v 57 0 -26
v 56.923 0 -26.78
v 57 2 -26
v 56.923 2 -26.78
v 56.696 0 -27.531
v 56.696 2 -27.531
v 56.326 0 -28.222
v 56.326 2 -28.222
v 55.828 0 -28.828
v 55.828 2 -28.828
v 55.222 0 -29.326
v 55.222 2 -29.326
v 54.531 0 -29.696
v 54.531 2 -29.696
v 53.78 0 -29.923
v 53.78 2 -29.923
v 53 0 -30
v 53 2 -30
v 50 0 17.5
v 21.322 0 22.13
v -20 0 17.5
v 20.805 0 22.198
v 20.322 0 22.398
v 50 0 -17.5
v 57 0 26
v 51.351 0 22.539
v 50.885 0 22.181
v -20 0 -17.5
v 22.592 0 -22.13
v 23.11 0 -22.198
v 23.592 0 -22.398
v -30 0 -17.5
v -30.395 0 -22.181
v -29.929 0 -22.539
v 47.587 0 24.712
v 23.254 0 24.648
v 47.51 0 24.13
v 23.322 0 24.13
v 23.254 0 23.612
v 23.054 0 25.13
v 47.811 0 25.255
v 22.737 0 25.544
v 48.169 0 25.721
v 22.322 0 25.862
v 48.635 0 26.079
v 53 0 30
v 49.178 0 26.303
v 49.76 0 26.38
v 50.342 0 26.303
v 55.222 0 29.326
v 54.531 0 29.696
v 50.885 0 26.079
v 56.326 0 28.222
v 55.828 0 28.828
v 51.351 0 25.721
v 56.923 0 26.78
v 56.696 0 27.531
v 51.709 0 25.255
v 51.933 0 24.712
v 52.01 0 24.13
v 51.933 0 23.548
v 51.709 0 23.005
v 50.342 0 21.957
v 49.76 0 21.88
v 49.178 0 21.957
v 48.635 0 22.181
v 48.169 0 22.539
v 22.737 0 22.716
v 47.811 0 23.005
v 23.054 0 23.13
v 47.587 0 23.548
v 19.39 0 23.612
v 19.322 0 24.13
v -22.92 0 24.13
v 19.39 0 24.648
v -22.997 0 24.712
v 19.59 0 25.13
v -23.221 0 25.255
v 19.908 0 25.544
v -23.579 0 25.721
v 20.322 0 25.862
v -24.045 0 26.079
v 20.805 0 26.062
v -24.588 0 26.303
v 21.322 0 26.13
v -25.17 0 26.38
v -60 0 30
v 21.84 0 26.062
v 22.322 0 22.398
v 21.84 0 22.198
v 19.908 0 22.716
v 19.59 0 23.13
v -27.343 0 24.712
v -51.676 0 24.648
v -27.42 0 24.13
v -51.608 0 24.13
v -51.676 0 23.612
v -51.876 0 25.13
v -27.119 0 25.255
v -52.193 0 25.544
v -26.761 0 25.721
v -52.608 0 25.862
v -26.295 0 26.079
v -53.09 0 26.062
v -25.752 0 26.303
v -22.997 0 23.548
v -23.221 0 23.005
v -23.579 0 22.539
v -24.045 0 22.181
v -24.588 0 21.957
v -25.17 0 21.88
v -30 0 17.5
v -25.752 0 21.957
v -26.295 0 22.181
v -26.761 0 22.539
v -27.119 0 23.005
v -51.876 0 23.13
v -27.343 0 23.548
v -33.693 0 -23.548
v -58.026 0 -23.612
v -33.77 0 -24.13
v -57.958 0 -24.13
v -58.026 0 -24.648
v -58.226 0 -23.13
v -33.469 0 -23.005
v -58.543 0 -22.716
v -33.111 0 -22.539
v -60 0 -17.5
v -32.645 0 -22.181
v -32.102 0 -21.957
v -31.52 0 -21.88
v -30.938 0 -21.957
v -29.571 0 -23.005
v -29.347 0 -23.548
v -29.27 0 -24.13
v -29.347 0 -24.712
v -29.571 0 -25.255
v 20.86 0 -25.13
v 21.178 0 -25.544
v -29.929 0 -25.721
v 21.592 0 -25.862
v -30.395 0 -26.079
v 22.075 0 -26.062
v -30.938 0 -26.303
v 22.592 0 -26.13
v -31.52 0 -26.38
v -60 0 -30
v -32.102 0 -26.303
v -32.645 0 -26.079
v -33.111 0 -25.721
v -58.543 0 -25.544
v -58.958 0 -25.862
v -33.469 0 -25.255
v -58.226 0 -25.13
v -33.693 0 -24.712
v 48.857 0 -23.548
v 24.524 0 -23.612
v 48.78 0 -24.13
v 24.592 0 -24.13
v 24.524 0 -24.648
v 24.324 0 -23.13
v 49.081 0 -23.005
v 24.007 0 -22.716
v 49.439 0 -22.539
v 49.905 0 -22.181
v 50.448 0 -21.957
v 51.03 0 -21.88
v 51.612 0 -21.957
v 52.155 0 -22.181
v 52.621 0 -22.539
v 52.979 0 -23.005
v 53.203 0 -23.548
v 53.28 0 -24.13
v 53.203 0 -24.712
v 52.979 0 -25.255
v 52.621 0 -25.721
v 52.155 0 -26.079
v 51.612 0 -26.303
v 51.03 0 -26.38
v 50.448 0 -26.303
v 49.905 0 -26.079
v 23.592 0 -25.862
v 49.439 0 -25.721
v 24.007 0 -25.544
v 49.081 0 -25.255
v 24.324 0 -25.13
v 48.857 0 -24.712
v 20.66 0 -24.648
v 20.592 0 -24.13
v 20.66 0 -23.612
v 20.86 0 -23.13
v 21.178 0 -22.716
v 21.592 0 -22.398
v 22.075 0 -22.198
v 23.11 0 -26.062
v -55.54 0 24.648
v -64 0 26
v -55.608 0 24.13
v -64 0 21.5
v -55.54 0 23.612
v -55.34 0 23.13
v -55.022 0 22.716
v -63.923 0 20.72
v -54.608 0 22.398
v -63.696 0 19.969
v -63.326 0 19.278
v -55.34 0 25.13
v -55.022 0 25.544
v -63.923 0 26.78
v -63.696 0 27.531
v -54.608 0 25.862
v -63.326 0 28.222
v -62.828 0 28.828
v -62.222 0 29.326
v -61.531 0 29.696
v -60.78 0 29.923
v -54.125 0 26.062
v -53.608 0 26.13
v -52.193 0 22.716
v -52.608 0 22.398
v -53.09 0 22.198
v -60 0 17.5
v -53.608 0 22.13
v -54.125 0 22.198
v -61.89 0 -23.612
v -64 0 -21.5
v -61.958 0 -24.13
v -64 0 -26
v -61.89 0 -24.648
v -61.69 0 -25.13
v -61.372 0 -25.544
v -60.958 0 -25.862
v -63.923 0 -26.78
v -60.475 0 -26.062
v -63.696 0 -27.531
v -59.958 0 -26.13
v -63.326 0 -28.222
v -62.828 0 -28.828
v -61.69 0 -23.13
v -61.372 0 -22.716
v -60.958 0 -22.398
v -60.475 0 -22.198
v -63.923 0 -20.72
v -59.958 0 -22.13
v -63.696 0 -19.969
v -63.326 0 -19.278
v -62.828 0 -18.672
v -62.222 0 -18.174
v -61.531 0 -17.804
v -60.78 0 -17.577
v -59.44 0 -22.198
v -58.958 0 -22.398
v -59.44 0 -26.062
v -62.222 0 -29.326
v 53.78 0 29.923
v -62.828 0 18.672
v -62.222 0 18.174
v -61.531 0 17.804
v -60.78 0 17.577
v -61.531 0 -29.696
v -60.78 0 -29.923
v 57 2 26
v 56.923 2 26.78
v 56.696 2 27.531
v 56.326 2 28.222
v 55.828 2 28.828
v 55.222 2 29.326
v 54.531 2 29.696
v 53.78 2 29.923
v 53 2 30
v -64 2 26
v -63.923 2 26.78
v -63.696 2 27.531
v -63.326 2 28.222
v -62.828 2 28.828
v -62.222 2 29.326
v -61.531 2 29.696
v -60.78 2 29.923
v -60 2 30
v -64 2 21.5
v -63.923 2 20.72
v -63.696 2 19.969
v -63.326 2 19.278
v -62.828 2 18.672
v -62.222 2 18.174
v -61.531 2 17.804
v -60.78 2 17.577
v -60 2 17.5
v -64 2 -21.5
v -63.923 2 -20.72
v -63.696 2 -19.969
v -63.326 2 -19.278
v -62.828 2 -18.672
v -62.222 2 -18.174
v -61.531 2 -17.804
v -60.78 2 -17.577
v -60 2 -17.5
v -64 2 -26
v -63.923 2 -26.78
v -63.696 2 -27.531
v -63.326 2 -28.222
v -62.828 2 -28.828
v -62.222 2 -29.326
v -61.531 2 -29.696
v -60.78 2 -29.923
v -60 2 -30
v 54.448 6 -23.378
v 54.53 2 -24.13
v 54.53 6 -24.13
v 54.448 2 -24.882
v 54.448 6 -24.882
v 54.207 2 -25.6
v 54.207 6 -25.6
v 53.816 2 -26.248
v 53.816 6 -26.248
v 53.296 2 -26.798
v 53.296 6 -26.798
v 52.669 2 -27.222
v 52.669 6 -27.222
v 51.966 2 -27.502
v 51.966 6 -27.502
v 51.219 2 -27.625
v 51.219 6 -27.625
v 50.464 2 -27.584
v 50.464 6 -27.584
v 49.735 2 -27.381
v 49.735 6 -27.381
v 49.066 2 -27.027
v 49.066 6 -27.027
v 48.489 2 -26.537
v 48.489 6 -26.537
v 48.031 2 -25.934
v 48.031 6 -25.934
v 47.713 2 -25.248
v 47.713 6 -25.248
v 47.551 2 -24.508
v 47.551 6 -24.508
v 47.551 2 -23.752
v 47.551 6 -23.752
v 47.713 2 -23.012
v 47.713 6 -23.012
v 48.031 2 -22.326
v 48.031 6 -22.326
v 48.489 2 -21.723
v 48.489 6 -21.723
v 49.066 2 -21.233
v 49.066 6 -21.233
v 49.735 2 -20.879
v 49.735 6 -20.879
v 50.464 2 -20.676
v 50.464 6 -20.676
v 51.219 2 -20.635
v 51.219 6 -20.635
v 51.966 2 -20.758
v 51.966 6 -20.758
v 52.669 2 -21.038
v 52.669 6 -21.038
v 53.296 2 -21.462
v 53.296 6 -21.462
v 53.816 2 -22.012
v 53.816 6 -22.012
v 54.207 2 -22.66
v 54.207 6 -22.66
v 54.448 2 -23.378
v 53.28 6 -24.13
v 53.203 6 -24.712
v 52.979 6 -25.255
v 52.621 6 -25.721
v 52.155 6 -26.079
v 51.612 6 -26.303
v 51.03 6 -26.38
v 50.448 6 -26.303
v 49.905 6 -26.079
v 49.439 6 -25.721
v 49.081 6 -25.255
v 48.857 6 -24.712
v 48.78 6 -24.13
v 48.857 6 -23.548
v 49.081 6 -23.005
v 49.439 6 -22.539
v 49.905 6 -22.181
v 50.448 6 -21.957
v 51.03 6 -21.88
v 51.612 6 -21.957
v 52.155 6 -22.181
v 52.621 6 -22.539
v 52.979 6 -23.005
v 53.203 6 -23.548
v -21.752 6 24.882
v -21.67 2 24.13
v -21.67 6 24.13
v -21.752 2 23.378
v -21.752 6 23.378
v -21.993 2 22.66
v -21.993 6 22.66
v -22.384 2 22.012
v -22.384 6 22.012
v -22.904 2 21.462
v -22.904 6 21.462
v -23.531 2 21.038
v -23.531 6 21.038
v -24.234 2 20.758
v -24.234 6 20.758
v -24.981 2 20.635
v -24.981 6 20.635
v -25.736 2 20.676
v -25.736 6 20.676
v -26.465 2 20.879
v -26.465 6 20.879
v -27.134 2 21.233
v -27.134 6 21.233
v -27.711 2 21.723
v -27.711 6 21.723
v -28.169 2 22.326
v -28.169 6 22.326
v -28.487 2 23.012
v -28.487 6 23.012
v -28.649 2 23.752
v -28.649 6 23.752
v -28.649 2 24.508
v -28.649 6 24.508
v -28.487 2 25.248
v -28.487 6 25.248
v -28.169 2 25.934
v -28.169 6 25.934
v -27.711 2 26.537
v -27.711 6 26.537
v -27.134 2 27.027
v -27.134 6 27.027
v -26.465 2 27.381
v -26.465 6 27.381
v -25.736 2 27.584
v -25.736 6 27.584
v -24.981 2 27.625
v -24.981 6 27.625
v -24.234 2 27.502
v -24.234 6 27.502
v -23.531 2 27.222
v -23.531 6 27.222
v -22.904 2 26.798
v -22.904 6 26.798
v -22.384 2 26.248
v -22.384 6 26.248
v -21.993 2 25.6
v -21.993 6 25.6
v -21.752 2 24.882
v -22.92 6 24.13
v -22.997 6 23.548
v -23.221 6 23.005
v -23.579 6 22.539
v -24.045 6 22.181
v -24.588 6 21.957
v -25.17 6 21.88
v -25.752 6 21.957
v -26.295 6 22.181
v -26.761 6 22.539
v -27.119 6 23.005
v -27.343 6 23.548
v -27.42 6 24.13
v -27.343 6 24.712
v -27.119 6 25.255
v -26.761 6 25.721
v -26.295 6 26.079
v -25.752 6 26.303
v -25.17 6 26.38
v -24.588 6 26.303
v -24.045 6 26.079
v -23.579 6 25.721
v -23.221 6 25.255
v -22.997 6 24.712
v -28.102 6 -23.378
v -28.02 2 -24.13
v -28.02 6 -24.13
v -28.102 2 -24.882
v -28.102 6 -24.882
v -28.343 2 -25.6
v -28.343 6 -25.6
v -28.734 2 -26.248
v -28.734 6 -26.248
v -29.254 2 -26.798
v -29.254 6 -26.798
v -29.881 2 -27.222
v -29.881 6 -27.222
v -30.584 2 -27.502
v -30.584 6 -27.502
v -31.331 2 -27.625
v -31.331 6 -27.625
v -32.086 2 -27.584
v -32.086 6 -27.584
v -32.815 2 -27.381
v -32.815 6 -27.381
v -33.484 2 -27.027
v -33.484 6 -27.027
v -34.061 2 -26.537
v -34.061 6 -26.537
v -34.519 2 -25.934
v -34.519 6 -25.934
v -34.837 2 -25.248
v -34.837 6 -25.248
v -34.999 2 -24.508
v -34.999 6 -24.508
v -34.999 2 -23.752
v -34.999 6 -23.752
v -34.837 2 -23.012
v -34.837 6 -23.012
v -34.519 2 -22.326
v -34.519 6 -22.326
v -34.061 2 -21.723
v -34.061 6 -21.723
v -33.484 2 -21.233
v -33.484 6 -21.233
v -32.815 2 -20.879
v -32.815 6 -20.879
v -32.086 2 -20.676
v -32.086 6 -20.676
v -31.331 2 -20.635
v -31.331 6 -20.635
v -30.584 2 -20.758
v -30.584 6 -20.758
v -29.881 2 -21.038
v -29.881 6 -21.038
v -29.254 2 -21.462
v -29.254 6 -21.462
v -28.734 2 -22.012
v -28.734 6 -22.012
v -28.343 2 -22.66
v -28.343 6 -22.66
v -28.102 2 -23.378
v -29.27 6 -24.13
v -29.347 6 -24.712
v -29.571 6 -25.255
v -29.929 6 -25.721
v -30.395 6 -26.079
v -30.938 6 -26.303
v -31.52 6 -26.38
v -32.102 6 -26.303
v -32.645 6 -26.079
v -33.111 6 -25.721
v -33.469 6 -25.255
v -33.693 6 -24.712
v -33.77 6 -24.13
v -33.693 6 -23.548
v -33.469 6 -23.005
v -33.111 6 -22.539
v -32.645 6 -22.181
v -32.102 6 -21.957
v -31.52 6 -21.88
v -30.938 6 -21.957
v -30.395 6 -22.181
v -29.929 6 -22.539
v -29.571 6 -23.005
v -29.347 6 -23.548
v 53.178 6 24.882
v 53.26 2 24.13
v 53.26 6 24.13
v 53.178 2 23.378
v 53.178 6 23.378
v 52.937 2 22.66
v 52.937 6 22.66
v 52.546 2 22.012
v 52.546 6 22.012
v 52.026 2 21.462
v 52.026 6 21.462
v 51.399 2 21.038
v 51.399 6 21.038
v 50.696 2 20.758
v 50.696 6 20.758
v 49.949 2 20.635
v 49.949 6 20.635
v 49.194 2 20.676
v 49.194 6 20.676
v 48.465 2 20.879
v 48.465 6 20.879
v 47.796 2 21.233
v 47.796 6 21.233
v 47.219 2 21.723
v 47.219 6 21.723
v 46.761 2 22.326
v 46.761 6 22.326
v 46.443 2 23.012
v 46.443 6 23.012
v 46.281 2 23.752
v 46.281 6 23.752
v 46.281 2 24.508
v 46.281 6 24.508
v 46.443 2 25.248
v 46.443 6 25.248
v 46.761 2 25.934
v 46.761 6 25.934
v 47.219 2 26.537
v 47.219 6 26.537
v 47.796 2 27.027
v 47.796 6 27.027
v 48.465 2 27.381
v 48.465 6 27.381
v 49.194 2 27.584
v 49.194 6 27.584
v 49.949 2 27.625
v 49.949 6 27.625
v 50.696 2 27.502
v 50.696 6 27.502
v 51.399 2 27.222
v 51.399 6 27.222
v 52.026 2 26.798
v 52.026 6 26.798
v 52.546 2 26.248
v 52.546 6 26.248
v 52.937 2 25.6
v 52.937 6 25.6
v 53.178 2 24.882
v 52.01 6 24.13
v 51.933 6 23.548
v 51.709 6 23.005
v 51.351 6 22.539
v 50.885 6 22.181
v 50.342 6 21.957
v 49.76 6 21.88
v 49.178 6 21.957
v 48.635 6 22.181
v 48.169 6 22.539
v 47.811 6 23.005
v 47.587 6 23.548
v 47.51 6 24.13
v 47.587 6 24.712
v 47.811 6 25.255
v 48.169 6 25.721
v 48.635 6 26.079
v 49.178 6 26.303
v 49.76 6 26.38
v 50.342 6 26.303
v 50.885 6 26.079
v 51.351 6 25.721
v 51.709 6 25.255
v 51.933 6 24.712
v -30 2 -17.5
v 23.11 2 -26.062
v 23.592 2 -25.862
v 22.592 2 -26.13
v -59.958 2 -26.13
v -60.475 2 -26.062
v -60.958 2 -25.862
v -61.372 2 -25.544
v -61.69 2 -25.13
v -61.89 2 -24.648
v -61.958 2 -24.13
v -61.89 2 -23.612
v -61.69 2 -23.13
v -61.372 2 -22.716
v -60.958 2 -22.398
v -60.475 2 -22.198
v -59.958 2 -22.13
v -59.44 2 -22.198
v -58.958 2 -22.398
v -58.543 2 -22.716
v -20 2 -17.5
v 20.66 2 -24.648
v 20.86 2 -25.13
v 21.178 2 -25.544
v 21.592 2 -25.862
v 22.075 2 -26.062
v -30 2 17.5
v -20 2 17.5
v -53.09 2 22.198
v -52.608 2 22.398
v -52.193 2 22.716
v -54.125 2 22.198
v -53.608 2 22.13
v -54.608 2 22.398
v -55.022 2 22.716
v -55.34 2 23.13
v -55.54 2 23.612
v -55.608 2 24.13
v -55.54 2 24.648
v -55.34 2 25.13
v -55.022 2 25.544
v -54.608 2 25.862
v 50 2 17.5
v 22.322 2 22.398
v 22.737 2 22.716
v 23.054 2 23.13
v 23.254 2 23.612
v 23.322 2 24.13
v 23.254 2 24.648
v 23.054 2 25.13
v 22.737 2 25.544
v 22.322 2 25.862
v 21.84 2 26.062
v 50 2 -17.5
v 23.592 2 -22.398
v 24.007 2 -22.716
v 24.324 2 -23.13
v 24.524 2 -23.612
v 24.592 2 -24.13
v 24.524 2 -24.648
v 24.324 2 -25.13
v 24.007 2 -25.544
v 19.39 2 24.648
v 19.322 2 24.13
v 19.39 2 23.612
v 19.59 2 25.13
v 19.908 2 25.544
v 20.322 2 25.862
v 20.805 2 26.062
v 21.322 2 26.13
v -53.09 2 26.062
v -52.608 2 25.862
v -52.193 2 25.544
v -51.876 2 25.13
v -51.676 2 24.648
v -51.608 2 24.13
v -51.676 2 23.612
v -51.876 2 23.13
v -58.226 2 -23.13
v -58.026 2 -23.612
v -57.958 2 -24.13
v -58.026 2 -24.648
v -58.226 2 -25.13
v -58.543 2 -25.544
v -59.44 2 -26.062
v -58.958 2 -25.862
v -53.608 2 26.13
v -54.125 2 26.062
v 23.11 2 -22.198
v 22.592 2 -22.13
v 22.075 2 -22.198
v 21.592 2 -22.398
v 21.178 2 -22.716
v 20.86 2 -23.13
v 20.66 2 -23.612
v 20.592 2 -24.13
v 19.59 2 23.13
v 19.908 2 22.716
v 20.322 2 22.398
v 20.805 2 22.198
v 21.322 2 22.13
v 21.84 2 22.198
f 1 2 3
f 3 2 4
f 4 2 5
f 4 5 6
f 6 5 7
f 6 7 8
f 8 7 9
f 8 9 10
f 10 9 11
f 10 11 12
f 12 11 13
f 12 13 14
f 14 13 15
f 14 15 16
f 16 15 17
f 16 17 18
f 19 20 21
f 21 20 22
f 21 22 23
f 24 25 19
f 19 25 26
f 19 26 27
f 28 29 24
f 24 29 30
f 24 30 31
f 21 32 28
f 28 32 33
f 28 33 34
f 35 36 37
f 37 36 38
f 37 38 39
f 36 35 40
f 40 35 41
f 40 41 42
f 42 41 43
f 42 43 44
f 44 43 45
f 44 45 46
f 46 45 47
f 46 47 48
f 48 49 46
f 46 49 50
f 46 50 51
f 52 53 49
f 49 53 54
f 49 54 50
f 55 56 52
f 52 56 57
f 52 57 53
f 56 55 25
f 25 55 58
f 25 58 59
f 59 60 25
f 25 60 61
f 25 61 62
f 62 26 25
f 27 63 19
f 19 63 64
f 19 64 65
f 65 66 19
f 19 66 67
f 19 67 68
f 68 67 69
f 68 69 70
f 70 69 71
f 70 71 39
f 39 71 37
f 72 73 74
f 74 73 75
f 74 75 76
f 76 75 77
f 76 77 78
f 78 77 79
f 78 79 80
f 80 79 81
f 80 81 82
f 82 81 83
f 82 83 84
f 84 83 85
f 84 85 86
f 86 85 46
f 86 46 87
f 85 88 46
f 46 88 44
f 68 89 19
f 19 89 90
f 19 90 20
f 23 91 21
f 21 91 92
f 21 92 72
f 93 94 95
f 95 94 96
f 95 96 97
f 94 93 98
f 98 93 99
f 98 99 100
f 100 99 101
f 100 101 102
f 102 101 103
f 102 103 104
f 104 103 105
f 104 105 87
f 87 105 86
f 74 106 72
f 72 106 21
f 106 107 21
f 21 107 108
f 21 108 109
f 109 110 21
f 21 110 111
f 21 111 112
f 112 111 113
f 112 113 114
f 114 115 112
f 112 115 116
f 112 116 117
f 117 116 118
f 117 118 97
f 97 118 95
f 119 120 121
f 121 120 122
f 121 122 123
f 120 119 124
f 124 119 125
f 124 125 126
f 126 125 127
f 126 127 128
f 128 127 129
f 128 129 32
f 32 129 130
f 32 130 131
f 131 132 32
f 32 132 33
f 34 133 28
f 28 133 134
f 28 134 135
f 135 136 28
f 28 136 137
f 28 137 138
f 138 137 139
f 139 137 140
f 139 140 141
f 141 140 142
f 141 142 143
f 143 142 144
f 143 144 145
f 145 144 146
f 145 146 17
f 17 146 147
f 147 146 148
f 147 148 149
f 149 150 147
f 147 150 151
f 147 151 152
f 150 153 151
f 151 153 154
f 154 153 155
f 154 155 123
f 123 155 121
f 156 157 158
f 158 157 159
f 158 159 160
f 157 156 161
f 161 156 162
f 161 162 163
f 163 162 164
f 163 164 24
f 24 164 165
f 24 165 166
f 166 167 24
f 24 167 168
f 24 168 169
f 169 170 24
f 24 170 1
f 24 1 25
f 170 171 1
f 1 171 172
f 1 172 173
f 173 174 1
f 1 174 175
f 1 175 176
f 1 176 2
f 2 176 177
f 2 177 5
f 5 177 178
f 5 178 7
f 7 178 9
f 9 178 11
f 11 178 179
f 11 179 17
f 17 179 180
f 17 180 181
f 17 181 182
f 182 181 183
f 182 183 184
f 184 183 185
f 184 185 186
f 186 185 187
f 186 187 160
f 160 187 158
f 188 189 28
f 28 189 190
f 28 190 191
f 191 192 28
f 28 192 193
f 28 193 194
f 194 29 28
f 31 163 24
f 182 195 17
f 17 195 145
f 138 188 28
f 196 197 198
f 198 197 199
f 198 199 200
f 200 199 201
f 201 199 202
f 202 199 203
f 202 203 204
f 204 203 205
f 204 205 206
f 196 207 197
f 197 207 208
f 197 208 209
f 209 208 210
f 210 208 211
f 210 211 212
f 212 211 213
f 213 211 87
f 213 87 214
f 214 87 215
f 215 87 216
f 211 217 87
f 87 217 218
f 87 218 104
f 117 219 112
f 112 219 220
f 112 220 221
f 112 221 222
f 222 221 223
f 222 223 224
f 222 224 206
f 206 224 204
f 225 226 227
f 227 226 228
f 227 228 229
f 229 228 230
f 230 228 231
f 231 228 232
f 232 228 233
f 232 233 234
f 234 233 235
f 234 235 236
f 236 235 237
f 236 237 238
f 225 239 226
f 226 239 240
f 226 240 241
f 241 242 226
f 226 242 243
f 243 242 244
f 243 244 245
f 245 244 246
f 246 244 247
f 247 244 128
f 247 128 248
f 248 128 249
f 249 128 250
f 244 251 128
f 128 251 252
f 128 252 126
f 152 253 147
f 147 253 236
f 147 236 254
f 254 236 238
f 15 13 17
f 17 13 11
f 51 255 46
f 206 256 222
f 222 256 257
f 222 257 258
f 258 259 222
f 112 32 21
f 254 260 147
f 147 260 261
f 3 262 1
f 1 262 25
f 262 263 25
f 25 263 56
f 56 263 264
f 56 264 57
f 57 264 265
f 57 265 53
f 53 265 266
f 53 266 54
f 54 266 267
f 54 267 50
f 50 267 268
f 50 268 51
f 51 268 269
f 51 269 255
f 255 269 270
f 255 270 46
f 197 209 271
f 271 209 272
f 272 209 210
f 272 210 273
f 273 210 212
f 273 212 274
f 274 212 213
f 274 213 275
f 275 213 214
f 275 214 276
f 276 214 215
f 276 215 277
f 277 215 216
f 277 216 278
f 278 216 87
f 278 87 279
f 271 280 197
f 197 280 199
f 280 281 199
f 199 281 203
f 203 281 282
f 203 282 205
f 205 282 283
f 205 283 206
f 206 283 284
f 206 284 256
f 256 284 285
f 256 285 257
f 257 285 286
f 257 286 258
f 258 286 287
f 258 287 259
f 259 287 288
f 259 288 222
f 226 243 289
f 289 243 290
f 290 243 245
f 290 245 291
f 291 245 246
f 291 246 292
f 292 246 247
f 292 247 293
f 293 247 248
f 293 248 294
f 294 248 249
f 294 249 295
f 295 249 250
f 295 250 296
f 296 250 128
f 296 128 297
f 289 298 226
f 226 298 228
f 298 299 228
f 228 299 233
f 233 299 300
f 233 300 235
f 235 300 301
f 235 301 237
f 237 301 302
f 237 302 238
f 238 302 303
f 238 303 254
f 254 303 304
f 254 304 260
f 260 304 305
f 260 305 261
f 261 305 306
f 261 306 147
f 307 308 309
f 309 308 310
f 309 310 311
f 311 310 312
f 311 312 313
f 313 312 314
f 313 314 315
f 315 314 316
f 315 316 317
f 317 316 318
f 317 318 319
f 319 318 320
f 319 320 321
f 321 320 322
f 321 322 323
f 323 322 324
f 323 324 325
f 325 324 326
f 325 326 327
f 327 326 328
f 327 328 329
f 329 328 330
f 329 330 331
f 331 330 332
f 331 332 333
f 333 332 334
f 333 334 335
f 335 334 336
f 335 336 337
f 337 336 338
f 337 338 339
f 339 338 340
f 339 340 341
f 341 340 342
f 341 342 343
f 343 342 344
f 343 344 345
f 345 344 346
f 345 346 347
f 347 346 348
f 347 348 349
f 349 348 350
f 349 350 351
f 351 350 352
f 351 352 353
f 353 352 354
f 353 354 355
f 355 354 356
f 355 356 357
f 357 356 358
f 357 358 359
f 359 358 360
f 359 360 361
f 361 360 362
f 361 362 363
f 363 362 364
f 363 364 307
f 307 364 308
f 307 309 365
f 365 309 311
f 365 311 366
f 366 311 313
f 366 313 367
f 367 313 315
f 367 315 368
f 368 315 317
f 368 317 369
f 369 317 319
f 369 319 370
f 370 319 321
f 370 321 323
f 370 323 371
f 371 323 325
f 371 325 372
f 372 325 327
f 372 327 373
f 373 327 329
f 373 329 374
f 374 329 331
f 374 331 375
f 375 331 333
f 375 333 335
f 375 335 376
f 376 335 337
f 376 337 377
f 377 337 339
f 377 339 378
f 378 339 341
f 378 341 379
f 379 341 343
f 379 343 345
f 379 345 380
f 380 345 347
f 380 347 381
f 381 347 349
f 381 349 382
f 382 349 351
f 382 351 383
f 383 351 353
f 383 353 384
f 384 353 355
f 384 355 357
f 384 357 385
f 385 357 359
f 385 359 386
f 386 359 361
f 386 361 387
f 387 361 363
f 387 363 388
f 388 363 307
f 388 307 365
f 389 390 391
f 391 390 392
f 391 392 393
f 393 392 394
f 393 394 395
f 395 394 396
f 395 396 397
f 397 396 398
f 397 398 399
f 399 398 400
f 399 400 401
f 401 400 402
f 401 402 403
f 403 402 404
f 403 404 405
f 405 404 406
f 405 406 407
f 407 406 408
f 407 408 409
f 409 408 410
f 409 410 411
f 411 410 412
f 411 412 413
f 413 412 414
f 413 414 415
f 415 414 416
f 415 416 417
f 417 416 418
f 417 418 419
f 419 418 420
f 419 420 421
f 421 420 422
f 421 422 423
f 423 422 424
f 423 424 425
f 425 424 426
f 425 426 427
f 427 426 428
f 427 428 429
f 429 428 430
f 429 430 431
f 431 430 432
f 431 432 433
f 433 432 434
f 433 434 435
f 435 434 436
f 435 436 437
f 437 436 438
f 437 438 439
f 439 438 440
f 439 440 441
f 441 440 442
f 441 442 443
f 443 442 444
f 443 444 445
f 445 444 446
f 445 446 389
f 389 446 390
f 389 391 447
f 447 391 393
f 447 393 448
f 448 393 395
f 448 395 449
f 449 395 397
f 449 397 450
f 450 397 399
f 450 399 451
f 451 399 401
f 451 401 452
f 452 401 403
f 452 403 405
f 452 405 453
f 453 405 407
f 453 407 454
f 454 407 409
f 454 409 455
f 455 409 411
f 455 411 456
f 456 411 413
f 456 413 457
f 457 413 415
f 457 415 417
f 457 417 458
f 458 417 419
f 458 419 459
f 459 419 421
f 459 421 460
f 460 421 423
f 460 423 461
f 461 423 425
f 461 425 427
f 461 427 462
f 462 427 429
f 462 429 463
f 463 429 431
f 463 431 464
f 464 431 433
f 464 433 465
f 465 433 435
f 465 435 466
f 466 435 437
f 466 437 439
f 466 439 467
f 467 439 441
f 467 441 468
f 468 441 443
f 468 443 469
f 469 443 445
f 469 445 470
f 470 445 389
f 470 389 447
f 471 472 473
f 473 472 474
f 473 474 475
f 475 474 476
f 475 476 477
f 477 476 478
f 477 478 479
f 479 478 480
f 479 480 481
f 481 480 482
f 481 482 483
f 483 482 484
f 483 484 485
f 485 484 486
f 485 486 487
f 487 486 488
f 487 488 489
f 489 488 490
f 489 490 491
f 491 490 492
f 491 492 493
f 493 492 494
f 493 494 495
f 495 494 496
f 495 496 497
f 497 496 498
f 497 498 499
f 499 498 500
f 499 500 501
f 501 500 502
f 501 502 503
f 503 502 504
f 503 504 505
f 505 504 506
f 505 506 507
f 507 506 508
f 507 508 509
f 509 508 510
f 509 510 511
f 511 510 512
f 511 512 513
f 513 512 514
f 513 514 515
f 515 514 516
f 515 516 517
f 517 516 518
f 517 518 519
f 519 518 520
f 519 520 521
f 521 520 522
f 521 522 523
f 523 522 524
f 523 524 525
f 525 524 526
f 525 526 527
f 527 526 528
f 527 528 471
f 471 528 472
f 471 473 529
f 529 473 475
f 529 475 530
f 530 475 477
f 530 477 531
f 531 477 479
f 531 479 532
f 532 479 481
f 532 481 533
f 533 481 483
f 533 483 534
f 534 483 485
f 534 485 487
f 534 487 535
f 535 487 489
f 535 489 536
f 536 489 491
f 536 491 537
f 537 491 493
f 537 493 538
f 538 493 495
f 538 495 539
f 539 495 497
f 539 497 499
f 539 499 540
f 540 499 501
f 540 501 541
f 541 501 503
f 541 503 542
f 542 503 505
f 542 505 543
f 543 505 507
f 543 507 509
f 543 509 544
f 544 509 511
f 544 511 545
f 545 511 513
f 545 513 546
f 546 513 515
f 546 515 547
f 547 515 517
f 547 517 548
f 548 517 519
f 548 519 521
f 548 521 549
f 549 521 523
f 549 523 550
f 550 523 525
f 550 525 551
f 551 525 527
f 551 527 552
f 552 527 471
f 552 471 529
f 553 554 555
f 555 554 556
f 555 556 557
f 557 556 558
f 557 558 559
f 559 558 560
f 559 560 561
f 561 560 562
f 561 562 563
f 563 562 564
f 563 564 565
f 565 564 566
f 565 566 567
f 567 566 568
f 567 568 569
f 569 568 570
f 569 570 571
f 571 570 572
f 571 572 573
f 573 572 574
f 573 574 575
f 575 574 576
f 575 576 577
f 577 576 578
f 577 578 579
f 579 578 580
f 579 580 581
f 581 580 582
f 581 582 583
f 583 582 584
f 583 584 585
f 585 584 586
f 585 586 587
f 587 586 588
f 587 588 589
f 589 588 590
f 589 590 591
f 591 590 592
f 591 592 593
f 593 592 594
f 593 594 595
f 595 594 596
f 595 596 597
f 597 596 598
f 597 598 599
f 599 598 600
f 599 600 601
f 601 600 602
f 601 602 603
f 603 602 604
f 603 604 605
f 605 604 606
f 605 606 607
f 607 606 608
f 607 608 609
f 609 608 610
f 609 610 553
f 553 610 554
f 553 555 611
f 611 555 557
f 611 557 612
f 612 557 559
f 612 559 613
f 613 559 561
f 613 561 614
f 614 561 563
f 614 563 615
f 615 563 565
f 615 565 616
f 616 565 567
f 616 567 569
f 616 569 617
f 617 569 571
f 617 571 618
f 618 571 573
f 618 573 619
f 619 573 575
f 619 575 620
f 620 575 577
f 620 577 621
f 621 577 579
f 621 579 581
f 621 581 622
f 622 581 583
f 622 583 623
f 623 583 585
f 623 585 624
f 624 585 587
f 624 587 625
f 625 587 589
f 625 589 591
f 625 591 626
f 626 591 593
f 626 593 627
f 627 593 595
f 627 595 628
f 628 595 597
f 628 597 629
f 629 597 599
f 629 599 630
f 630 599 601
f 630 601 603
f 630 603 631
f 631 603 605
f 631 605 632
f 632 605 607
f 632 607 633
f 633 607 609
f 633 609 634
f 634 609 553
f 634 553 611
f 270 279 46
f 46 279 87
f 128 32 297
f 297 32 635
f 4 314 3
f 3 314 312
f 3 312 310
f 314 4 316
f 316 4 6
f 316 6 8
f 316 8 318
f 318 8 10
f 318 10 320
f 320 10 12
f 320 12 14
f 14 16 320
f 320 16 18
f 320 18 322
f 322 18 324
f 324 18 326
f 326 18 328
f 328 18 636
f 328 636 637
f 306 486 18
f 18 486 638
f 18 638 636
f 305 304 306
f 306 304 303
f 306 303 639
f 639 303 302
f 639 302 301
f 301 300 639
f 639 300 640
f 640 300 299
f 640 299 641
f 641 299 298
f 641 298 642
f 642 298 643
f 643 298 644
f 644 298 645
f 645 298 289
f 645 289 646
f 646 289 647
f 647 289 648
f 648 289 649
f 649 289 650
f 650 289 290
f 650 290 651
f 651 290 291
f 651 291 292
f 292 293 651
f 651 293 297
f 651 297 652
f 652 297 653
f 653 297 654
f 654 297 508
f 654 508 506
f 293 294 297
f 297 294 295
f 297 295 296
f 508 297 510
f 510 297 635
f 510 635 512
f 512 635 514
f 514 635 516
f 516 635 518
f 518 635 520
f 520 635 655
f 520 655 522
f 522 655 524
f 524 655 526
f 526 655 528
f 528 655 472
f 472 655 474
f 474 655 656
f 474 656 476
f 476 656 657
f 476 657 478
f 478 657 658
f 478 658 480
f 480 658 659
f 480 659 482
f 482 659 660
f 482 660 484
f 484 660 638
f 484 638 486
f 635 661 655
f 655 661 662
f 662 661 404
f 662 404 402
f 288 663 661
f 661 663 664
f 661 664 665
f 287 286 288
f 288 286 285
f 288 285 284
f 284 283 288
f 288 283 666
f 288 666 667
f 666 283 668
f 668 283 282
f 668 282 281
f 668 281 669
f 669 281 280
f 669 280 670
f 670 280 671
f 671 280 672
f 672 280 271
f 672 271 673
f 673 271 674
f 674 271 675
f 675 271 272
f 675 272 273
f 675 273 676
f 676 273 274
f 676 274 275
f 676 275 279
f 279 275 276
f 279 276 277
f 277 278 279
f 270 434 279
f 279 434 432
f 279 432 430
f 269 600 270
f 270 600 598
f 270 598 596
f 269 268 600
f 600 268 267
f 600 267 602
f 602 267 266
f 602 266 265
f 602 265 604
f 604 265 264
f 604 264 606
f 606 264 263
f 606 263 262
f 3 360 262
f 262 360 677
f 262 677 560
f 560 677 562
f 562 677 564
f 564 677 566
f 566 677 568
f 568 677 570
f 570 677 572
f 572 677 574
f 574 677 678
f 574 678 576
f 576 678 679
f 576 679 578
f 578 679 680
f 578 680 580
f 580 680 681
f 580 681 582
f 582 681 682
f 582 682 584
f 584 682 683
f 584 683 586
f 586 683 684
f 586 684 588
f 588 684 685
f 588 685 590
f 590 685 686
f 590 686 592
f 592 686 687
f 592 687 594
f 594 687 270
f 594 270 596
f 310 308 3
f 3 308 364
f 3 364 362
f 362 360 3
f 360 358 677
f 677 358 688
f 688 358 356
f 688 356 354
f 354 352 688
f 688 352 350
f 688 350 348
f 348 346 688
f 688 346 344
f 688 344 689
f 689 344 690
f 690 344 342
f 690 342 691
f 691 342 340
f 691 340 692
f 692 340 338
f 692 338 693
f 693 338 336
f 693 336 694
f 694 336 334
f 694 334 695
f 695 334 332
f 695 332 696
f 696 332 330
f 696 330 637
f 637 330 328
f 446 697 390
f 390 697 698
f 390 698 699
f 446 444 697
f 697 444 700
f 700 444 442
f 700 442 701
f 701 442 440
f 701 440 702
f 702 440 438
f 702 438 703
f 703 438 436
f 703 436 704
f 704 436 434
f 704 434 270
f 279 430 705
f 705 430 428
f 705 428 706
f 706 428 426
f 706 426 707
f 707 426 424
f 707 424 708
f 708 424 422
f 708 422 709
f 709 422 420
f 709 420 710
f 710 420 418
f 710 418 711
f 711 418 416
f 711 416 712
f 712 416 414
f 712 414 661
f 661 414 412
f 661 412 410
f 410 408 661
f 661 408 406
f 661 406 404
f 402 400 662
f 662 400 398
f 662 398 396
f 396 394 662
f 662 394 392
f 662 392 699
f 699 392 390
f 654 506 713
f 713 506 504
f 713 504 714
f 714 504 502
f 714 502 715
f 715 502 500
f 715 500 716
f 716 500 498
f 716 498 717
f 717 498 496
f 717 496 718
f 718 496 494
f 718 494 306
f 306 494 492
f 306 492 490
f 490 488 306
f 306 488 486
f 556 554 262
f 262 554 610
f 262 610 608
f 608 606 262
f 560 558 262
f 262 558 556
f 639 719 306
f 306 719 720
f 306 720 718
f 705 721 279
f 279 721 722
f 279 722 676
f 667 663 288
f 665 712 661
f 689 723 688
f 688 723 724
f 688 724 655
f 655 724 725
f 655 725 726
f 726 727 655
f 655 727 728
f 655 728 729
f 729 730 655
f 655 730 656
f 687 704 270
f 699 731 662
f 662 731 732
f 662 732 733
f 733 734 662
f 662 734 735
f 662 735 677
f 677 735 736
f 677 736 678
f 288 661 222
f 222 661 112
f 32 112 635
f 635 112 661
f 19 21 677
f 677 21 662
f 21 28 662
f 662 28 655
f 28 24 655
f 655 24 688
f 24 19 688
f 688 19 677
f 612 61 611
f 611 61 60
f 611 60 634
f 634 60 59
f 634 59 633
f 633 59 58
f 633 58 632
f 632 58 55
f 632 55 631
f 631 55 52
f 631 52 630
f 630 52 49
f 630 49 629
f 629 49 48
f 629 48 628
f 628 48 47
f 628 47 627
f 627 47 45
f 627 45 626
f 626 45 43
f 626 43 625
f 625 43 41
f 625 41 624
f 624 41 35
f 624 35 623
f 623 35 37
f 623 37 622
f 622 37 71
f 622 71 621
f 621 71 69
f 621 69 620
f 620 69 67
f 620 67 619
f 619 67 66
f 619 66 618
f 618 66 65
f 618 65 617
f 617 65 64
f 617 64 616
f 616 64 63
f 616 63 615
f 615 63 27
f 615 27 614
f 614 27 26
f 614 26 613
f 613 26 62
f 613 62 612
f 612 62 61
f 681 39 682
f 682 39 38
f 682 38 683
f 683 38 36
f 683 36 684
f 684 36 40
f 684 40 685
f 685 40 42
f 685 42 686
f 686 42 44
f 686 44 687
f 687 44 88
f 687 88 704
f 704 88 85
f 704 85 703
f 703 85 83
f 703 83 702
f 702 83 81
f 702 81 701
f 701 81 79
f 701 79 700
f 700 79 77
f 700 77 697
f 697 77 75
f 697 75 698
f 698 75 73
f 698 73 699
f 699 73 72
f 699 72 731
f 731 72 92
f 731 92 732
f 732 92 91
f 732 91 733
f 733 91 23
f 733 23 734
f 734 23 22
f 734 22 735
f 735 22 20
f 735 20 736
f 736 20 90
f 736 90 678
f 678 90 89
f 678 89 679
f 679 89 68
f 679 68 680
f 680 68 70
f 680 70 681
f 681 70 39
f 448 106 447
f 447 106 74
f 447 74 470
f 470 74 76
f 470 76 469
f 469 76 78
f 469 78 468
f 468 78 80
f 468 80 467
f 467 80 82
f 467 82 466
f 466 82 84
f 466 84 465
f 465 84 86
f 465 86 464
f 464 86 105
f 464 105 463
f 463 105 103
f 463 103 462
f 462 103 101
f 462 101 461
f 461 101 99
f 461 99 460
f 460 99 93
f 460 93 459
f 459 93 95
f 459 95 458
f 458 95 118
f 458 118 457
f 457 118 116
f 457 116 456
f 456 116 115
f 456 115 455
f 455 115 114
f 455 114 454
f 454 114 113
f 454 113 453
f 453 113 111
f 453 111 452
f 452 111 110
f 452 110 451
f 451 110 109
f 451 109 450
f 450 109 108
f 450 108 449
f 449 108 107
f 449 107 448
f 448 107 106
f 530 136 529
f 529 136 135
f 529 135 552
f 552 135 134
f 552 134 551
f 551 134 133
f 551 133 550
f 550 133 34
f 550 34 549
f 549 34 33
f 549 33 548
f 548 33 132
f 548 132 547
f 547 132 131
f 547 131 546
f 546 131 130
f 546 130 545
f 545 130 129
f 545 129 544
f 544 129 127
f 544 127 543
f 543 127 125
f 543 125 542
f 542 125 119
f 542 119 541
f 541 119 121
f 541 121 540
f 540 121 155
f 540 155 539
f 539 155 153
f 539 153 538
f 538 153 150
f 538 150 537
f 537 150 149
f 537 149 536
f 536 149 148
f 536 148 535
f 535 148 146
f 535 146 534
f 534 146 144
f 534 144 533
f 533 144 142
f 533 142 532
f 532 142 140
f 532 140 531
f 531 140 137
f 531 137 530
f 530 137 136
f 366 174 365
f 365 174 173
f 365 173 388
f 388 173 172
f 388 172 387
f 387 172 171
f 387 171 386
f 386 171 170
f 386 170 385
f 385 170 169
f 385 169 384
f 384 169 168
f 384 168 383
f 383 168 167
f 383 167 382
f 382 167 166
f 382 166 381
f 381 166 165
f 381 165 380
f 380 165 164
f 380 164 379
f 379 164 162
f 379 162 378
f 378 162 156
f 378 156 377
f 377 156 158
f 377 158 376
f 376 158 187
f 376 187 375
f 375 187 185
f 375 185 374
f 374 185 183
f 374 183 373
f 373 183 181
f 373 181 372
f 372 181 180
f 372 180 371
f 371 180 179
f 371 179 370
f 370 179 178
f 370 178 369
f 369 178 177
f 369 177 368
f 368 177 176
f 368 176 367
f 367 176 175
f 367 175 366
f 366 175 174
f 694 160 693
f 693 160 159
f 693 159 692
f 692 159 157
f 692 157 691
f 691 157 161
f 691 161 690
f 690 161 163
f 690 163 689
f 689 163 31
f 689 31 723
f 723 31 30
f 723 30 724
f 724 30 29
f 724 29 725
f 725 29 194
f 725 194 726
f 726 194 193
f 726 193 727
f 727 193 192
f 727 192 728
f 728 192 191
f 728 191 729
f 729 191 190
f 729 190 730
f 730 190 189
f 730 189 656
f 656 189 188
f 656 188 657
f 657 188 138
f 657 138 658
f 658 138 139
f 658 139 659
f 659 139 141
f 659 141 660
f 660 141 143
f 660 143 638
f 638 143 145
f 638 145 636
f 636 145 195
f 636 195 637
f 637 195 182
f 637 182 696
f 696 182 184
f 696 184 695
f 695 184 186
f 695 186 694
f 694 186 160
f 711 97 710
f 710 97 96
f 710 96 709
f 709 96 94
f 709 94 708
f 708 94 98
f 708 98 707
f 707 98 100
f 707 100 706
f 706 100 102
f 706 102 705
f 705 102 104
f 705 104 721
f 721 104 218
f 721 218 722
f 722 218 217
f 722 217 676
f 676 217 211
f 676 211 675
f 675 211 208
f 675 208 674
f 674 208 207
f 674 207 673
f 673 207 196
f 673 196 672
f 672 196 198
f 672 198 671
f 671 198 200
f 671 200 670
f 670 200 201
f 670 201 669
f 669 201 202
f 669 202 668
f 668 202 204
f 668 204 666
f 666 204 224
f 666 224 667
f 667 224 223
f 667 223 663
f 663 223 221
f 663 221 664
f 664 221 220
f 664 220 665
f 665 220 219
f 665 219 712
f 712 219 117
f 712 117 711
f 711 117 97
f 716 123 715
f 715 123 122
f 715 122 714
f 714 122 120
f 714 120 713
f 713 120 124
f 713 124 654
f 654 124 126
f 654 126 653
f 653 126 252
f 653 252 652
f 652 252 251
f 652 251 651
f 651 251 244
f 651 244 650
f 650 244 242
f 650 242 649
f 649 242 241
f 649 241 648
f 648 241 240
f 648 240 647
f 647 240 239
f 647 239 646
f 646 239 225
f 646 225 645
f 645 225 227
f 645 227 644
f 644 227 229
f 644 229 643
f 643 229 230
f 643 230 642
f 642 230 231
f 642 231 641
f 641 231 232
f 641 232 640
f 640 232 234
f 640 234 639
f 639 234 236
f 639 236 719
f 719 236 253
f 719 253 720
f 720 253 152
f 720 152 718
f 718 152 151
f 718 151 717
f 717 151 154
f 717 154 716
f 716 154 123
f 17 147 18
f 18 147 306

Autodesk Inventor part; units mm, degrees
ref_plane "YZ Plane" through (0, 0, 0) normal (1, 0, 0) x (0, 1, 0)
ref_plane "XZ Plane" through (0, 0, 0) normal (0, 1, 0) x (-1, 0, 0)
ref_plane "XY Plane" through (0, 0, 0) normal (0, 0, 1) x (1, 0, 0)
sketch "Skizze1" plane through (0, 0, 0) normal (0, 1, 0) x (-1, 0, 0)
  line L0 (-65, 30) -> (65, 30)
  line L1 (65, 30) -> (65, -30)
  line L2 (65, -30) -> (-65, -30)
  line L3 (-65, -30) -> (-65, 30)
  line L4 (0, -42) -> (0, 42) projected
  line L5 (-91, 0) -> (91, 0) projected
  point P0 (0, 0)
  dimension "d0" = 130
  dimension "d1" = 60
extrude "Extrusion1" add sketch "Skizze1" along normal blind 2
sketch "Skizze2" plane through (0, 2, 0) normal (0, 1, 0) x (1, 0, 0)
  line L0 (0, 42) -> (0, -42) projected
  line L1 (91, 0) -> (-91, 0) projected
  circle A0 centre (49.76, -24.13) radius 2.25
  line L2 (65, -30) -> (65, 30) projected
  circle A1 centre (51.03, 24.13) radius 2.25
  circle A2 centre (-31.52, 24.13) radius 2.25
  circle A3 centre (-25.17, -24.13) radius 2.25
  circle A4 centre (21.3223, -24.13) radius 2
  circle A5 centre (22.5923, 24.13) radius 2
  circle A6 centre (-59.9577, 24.13) radius 2
  circle A7 centre (-53.6077, -24.13) radius 2
  line L3 (-65, 30) -> (-65, -30) projected
  circle A8 centre (49.76, -24.13) radius 3.5
  circle A9 centre (-25.17, -24.13) radius 3.5
  circle A10 centre (51.03, 24.13) radius 3.5
  circle A11 centre (-31.52, 24.13) radius 3.5
  point P0 (0, 0)
  dimension "d4" = 4.5
  dimension "d5" = 24.13
  dimension "d6" = 15.24
  dimension "d7" = 4.5
  dimension "d8" = 24.13
  dimension "d9" = 13.97
  dimension "d10" = 4.5
  dimension "d11" = 24.13
  dimension "d12" = 82.55
  dimension "d13" = 4.5
  dimension "d14" = 24.13
  dimension "d15" = 74.93
  dimension "d16" = 4
  dimension "d17" = 4
  dimension "d18" = 4
  dimension "d19" = 82.55
  dimension "d20" = 4
  dimension "d21" = 74.93
  dimension "d22" = 24.13
  dimension "d23" = 24.13
  dimension "d24" = 11.3923
  dimension "d25" = 5.0423
  dimension "d26" = 24.13
  dimension "d27" = 24.13
  dimension "d41" = 7
  dimension "d42" = 7
  dimension "d43" = 7
  dimension "d44" = 7
extrude "Extrusion2" cut sketch "Skizze2" against normal up to surface (2 mm away) contours A0 | A1 | A2 | A3 | A4 | A5 | A6 | A7
sketch "Skizze3" plane through (0, 2, 0) normal (0, 1, 0) x (1, 0, 0)
  line L0 (-65, 30) -> (-65, -30) projected
  line L1 (-65, -17.5) -> (-30, -17.5)
  line L2 (-30, -17.5) -> (-30, 17.5)
  line L3 (-30, 17.5) -> (-65, 17.5)
  line L4 (-65, 17.5) -> (-65, -17.5)
  line L5 (91, 0) -> (-91, 0) projected
  line L6 (50, -17.5) -> (-20, -17.5)
  line L7 (-20, -17.5) -> (-20, 17.5)
  line L8 (-20, 17.5) -> (50, 17.5)
  line L9 (50, 17.5) -> (50, -17.5)
  line L10 (65, -30) -> (65, 30) projected
  point P0 (0, 0)
  dimension "d30" = 35
  dimension "d31" = 35
  dimension "d36" = 70
  dimension "d37" = 35
  dimension "d38" = 15
extrude "Extrusion3" cut sketch "Skizze3" against normal up to surface (2 mm away)
sketch "Skizze4" plane through (-65, 0, 30) normal (-1, 0, 0) x (0, 0, 1)
  line L0 (-12.5, 2) -> (-12.5, 0) projected
  line L1 (0, 0) -> (-12.5, 0)
  line L2 (-12.5, 0) -> (-12.5, 2)
  line L3 (-12.5, 2) -> (0, 2)
  line L4 (0, 2) -> (0, 0)
  line L5 (-60, 0) -> (-60, 2) projected
  line L6 (-47.5, 0) -> (-47.5, 2) projected
  line L7 (-60, 0) -> (-47.5, 0)
  line L8 (-47.5, 0) -> (-47.5, 2)
  line L9 (-47.5, 2) -> (-60, 2)
  line L10 (-60, 2) -> (-60, 0)
  point P0 (-30, 0)
extrude "Extrusion4" cut sketch "Skizze4" against normal blind 1
sketch "Skizze5" plane through (65, 0, 30) normal (1, 0, 0) x (0, 0, -1)
  line L0 (0, 0) -> (0, 2) projected
  line L1 (60, 0) -> (60, 2) projected
  line L2 (0, 2) -> (60, 2)
  line L3 (60, 2) -> (60, 0)
  line L4 (60, 0) -> (0, 0)
  line L5 (0, 0) -> (0, 2)
  point P0 (30, 0)
extrude "Extrusion5" cut sketch "Skizze5" against normal blind 8
extrude "Extrusion6" add sketch "Skizze2" along normal blind 4 contours A8 | A9 | A10 | A11
fillet "Rundung1" radius 4 4 edges at (-64, 1, -30) (-64, 1, -17.5) (-64, 1, 17.5) (-64, 1, 30)
fillet "Rundung2" radius 4 2 edges at (57, 1, 30) (57, 1, -30)
properties part number "_3D-Druck"
